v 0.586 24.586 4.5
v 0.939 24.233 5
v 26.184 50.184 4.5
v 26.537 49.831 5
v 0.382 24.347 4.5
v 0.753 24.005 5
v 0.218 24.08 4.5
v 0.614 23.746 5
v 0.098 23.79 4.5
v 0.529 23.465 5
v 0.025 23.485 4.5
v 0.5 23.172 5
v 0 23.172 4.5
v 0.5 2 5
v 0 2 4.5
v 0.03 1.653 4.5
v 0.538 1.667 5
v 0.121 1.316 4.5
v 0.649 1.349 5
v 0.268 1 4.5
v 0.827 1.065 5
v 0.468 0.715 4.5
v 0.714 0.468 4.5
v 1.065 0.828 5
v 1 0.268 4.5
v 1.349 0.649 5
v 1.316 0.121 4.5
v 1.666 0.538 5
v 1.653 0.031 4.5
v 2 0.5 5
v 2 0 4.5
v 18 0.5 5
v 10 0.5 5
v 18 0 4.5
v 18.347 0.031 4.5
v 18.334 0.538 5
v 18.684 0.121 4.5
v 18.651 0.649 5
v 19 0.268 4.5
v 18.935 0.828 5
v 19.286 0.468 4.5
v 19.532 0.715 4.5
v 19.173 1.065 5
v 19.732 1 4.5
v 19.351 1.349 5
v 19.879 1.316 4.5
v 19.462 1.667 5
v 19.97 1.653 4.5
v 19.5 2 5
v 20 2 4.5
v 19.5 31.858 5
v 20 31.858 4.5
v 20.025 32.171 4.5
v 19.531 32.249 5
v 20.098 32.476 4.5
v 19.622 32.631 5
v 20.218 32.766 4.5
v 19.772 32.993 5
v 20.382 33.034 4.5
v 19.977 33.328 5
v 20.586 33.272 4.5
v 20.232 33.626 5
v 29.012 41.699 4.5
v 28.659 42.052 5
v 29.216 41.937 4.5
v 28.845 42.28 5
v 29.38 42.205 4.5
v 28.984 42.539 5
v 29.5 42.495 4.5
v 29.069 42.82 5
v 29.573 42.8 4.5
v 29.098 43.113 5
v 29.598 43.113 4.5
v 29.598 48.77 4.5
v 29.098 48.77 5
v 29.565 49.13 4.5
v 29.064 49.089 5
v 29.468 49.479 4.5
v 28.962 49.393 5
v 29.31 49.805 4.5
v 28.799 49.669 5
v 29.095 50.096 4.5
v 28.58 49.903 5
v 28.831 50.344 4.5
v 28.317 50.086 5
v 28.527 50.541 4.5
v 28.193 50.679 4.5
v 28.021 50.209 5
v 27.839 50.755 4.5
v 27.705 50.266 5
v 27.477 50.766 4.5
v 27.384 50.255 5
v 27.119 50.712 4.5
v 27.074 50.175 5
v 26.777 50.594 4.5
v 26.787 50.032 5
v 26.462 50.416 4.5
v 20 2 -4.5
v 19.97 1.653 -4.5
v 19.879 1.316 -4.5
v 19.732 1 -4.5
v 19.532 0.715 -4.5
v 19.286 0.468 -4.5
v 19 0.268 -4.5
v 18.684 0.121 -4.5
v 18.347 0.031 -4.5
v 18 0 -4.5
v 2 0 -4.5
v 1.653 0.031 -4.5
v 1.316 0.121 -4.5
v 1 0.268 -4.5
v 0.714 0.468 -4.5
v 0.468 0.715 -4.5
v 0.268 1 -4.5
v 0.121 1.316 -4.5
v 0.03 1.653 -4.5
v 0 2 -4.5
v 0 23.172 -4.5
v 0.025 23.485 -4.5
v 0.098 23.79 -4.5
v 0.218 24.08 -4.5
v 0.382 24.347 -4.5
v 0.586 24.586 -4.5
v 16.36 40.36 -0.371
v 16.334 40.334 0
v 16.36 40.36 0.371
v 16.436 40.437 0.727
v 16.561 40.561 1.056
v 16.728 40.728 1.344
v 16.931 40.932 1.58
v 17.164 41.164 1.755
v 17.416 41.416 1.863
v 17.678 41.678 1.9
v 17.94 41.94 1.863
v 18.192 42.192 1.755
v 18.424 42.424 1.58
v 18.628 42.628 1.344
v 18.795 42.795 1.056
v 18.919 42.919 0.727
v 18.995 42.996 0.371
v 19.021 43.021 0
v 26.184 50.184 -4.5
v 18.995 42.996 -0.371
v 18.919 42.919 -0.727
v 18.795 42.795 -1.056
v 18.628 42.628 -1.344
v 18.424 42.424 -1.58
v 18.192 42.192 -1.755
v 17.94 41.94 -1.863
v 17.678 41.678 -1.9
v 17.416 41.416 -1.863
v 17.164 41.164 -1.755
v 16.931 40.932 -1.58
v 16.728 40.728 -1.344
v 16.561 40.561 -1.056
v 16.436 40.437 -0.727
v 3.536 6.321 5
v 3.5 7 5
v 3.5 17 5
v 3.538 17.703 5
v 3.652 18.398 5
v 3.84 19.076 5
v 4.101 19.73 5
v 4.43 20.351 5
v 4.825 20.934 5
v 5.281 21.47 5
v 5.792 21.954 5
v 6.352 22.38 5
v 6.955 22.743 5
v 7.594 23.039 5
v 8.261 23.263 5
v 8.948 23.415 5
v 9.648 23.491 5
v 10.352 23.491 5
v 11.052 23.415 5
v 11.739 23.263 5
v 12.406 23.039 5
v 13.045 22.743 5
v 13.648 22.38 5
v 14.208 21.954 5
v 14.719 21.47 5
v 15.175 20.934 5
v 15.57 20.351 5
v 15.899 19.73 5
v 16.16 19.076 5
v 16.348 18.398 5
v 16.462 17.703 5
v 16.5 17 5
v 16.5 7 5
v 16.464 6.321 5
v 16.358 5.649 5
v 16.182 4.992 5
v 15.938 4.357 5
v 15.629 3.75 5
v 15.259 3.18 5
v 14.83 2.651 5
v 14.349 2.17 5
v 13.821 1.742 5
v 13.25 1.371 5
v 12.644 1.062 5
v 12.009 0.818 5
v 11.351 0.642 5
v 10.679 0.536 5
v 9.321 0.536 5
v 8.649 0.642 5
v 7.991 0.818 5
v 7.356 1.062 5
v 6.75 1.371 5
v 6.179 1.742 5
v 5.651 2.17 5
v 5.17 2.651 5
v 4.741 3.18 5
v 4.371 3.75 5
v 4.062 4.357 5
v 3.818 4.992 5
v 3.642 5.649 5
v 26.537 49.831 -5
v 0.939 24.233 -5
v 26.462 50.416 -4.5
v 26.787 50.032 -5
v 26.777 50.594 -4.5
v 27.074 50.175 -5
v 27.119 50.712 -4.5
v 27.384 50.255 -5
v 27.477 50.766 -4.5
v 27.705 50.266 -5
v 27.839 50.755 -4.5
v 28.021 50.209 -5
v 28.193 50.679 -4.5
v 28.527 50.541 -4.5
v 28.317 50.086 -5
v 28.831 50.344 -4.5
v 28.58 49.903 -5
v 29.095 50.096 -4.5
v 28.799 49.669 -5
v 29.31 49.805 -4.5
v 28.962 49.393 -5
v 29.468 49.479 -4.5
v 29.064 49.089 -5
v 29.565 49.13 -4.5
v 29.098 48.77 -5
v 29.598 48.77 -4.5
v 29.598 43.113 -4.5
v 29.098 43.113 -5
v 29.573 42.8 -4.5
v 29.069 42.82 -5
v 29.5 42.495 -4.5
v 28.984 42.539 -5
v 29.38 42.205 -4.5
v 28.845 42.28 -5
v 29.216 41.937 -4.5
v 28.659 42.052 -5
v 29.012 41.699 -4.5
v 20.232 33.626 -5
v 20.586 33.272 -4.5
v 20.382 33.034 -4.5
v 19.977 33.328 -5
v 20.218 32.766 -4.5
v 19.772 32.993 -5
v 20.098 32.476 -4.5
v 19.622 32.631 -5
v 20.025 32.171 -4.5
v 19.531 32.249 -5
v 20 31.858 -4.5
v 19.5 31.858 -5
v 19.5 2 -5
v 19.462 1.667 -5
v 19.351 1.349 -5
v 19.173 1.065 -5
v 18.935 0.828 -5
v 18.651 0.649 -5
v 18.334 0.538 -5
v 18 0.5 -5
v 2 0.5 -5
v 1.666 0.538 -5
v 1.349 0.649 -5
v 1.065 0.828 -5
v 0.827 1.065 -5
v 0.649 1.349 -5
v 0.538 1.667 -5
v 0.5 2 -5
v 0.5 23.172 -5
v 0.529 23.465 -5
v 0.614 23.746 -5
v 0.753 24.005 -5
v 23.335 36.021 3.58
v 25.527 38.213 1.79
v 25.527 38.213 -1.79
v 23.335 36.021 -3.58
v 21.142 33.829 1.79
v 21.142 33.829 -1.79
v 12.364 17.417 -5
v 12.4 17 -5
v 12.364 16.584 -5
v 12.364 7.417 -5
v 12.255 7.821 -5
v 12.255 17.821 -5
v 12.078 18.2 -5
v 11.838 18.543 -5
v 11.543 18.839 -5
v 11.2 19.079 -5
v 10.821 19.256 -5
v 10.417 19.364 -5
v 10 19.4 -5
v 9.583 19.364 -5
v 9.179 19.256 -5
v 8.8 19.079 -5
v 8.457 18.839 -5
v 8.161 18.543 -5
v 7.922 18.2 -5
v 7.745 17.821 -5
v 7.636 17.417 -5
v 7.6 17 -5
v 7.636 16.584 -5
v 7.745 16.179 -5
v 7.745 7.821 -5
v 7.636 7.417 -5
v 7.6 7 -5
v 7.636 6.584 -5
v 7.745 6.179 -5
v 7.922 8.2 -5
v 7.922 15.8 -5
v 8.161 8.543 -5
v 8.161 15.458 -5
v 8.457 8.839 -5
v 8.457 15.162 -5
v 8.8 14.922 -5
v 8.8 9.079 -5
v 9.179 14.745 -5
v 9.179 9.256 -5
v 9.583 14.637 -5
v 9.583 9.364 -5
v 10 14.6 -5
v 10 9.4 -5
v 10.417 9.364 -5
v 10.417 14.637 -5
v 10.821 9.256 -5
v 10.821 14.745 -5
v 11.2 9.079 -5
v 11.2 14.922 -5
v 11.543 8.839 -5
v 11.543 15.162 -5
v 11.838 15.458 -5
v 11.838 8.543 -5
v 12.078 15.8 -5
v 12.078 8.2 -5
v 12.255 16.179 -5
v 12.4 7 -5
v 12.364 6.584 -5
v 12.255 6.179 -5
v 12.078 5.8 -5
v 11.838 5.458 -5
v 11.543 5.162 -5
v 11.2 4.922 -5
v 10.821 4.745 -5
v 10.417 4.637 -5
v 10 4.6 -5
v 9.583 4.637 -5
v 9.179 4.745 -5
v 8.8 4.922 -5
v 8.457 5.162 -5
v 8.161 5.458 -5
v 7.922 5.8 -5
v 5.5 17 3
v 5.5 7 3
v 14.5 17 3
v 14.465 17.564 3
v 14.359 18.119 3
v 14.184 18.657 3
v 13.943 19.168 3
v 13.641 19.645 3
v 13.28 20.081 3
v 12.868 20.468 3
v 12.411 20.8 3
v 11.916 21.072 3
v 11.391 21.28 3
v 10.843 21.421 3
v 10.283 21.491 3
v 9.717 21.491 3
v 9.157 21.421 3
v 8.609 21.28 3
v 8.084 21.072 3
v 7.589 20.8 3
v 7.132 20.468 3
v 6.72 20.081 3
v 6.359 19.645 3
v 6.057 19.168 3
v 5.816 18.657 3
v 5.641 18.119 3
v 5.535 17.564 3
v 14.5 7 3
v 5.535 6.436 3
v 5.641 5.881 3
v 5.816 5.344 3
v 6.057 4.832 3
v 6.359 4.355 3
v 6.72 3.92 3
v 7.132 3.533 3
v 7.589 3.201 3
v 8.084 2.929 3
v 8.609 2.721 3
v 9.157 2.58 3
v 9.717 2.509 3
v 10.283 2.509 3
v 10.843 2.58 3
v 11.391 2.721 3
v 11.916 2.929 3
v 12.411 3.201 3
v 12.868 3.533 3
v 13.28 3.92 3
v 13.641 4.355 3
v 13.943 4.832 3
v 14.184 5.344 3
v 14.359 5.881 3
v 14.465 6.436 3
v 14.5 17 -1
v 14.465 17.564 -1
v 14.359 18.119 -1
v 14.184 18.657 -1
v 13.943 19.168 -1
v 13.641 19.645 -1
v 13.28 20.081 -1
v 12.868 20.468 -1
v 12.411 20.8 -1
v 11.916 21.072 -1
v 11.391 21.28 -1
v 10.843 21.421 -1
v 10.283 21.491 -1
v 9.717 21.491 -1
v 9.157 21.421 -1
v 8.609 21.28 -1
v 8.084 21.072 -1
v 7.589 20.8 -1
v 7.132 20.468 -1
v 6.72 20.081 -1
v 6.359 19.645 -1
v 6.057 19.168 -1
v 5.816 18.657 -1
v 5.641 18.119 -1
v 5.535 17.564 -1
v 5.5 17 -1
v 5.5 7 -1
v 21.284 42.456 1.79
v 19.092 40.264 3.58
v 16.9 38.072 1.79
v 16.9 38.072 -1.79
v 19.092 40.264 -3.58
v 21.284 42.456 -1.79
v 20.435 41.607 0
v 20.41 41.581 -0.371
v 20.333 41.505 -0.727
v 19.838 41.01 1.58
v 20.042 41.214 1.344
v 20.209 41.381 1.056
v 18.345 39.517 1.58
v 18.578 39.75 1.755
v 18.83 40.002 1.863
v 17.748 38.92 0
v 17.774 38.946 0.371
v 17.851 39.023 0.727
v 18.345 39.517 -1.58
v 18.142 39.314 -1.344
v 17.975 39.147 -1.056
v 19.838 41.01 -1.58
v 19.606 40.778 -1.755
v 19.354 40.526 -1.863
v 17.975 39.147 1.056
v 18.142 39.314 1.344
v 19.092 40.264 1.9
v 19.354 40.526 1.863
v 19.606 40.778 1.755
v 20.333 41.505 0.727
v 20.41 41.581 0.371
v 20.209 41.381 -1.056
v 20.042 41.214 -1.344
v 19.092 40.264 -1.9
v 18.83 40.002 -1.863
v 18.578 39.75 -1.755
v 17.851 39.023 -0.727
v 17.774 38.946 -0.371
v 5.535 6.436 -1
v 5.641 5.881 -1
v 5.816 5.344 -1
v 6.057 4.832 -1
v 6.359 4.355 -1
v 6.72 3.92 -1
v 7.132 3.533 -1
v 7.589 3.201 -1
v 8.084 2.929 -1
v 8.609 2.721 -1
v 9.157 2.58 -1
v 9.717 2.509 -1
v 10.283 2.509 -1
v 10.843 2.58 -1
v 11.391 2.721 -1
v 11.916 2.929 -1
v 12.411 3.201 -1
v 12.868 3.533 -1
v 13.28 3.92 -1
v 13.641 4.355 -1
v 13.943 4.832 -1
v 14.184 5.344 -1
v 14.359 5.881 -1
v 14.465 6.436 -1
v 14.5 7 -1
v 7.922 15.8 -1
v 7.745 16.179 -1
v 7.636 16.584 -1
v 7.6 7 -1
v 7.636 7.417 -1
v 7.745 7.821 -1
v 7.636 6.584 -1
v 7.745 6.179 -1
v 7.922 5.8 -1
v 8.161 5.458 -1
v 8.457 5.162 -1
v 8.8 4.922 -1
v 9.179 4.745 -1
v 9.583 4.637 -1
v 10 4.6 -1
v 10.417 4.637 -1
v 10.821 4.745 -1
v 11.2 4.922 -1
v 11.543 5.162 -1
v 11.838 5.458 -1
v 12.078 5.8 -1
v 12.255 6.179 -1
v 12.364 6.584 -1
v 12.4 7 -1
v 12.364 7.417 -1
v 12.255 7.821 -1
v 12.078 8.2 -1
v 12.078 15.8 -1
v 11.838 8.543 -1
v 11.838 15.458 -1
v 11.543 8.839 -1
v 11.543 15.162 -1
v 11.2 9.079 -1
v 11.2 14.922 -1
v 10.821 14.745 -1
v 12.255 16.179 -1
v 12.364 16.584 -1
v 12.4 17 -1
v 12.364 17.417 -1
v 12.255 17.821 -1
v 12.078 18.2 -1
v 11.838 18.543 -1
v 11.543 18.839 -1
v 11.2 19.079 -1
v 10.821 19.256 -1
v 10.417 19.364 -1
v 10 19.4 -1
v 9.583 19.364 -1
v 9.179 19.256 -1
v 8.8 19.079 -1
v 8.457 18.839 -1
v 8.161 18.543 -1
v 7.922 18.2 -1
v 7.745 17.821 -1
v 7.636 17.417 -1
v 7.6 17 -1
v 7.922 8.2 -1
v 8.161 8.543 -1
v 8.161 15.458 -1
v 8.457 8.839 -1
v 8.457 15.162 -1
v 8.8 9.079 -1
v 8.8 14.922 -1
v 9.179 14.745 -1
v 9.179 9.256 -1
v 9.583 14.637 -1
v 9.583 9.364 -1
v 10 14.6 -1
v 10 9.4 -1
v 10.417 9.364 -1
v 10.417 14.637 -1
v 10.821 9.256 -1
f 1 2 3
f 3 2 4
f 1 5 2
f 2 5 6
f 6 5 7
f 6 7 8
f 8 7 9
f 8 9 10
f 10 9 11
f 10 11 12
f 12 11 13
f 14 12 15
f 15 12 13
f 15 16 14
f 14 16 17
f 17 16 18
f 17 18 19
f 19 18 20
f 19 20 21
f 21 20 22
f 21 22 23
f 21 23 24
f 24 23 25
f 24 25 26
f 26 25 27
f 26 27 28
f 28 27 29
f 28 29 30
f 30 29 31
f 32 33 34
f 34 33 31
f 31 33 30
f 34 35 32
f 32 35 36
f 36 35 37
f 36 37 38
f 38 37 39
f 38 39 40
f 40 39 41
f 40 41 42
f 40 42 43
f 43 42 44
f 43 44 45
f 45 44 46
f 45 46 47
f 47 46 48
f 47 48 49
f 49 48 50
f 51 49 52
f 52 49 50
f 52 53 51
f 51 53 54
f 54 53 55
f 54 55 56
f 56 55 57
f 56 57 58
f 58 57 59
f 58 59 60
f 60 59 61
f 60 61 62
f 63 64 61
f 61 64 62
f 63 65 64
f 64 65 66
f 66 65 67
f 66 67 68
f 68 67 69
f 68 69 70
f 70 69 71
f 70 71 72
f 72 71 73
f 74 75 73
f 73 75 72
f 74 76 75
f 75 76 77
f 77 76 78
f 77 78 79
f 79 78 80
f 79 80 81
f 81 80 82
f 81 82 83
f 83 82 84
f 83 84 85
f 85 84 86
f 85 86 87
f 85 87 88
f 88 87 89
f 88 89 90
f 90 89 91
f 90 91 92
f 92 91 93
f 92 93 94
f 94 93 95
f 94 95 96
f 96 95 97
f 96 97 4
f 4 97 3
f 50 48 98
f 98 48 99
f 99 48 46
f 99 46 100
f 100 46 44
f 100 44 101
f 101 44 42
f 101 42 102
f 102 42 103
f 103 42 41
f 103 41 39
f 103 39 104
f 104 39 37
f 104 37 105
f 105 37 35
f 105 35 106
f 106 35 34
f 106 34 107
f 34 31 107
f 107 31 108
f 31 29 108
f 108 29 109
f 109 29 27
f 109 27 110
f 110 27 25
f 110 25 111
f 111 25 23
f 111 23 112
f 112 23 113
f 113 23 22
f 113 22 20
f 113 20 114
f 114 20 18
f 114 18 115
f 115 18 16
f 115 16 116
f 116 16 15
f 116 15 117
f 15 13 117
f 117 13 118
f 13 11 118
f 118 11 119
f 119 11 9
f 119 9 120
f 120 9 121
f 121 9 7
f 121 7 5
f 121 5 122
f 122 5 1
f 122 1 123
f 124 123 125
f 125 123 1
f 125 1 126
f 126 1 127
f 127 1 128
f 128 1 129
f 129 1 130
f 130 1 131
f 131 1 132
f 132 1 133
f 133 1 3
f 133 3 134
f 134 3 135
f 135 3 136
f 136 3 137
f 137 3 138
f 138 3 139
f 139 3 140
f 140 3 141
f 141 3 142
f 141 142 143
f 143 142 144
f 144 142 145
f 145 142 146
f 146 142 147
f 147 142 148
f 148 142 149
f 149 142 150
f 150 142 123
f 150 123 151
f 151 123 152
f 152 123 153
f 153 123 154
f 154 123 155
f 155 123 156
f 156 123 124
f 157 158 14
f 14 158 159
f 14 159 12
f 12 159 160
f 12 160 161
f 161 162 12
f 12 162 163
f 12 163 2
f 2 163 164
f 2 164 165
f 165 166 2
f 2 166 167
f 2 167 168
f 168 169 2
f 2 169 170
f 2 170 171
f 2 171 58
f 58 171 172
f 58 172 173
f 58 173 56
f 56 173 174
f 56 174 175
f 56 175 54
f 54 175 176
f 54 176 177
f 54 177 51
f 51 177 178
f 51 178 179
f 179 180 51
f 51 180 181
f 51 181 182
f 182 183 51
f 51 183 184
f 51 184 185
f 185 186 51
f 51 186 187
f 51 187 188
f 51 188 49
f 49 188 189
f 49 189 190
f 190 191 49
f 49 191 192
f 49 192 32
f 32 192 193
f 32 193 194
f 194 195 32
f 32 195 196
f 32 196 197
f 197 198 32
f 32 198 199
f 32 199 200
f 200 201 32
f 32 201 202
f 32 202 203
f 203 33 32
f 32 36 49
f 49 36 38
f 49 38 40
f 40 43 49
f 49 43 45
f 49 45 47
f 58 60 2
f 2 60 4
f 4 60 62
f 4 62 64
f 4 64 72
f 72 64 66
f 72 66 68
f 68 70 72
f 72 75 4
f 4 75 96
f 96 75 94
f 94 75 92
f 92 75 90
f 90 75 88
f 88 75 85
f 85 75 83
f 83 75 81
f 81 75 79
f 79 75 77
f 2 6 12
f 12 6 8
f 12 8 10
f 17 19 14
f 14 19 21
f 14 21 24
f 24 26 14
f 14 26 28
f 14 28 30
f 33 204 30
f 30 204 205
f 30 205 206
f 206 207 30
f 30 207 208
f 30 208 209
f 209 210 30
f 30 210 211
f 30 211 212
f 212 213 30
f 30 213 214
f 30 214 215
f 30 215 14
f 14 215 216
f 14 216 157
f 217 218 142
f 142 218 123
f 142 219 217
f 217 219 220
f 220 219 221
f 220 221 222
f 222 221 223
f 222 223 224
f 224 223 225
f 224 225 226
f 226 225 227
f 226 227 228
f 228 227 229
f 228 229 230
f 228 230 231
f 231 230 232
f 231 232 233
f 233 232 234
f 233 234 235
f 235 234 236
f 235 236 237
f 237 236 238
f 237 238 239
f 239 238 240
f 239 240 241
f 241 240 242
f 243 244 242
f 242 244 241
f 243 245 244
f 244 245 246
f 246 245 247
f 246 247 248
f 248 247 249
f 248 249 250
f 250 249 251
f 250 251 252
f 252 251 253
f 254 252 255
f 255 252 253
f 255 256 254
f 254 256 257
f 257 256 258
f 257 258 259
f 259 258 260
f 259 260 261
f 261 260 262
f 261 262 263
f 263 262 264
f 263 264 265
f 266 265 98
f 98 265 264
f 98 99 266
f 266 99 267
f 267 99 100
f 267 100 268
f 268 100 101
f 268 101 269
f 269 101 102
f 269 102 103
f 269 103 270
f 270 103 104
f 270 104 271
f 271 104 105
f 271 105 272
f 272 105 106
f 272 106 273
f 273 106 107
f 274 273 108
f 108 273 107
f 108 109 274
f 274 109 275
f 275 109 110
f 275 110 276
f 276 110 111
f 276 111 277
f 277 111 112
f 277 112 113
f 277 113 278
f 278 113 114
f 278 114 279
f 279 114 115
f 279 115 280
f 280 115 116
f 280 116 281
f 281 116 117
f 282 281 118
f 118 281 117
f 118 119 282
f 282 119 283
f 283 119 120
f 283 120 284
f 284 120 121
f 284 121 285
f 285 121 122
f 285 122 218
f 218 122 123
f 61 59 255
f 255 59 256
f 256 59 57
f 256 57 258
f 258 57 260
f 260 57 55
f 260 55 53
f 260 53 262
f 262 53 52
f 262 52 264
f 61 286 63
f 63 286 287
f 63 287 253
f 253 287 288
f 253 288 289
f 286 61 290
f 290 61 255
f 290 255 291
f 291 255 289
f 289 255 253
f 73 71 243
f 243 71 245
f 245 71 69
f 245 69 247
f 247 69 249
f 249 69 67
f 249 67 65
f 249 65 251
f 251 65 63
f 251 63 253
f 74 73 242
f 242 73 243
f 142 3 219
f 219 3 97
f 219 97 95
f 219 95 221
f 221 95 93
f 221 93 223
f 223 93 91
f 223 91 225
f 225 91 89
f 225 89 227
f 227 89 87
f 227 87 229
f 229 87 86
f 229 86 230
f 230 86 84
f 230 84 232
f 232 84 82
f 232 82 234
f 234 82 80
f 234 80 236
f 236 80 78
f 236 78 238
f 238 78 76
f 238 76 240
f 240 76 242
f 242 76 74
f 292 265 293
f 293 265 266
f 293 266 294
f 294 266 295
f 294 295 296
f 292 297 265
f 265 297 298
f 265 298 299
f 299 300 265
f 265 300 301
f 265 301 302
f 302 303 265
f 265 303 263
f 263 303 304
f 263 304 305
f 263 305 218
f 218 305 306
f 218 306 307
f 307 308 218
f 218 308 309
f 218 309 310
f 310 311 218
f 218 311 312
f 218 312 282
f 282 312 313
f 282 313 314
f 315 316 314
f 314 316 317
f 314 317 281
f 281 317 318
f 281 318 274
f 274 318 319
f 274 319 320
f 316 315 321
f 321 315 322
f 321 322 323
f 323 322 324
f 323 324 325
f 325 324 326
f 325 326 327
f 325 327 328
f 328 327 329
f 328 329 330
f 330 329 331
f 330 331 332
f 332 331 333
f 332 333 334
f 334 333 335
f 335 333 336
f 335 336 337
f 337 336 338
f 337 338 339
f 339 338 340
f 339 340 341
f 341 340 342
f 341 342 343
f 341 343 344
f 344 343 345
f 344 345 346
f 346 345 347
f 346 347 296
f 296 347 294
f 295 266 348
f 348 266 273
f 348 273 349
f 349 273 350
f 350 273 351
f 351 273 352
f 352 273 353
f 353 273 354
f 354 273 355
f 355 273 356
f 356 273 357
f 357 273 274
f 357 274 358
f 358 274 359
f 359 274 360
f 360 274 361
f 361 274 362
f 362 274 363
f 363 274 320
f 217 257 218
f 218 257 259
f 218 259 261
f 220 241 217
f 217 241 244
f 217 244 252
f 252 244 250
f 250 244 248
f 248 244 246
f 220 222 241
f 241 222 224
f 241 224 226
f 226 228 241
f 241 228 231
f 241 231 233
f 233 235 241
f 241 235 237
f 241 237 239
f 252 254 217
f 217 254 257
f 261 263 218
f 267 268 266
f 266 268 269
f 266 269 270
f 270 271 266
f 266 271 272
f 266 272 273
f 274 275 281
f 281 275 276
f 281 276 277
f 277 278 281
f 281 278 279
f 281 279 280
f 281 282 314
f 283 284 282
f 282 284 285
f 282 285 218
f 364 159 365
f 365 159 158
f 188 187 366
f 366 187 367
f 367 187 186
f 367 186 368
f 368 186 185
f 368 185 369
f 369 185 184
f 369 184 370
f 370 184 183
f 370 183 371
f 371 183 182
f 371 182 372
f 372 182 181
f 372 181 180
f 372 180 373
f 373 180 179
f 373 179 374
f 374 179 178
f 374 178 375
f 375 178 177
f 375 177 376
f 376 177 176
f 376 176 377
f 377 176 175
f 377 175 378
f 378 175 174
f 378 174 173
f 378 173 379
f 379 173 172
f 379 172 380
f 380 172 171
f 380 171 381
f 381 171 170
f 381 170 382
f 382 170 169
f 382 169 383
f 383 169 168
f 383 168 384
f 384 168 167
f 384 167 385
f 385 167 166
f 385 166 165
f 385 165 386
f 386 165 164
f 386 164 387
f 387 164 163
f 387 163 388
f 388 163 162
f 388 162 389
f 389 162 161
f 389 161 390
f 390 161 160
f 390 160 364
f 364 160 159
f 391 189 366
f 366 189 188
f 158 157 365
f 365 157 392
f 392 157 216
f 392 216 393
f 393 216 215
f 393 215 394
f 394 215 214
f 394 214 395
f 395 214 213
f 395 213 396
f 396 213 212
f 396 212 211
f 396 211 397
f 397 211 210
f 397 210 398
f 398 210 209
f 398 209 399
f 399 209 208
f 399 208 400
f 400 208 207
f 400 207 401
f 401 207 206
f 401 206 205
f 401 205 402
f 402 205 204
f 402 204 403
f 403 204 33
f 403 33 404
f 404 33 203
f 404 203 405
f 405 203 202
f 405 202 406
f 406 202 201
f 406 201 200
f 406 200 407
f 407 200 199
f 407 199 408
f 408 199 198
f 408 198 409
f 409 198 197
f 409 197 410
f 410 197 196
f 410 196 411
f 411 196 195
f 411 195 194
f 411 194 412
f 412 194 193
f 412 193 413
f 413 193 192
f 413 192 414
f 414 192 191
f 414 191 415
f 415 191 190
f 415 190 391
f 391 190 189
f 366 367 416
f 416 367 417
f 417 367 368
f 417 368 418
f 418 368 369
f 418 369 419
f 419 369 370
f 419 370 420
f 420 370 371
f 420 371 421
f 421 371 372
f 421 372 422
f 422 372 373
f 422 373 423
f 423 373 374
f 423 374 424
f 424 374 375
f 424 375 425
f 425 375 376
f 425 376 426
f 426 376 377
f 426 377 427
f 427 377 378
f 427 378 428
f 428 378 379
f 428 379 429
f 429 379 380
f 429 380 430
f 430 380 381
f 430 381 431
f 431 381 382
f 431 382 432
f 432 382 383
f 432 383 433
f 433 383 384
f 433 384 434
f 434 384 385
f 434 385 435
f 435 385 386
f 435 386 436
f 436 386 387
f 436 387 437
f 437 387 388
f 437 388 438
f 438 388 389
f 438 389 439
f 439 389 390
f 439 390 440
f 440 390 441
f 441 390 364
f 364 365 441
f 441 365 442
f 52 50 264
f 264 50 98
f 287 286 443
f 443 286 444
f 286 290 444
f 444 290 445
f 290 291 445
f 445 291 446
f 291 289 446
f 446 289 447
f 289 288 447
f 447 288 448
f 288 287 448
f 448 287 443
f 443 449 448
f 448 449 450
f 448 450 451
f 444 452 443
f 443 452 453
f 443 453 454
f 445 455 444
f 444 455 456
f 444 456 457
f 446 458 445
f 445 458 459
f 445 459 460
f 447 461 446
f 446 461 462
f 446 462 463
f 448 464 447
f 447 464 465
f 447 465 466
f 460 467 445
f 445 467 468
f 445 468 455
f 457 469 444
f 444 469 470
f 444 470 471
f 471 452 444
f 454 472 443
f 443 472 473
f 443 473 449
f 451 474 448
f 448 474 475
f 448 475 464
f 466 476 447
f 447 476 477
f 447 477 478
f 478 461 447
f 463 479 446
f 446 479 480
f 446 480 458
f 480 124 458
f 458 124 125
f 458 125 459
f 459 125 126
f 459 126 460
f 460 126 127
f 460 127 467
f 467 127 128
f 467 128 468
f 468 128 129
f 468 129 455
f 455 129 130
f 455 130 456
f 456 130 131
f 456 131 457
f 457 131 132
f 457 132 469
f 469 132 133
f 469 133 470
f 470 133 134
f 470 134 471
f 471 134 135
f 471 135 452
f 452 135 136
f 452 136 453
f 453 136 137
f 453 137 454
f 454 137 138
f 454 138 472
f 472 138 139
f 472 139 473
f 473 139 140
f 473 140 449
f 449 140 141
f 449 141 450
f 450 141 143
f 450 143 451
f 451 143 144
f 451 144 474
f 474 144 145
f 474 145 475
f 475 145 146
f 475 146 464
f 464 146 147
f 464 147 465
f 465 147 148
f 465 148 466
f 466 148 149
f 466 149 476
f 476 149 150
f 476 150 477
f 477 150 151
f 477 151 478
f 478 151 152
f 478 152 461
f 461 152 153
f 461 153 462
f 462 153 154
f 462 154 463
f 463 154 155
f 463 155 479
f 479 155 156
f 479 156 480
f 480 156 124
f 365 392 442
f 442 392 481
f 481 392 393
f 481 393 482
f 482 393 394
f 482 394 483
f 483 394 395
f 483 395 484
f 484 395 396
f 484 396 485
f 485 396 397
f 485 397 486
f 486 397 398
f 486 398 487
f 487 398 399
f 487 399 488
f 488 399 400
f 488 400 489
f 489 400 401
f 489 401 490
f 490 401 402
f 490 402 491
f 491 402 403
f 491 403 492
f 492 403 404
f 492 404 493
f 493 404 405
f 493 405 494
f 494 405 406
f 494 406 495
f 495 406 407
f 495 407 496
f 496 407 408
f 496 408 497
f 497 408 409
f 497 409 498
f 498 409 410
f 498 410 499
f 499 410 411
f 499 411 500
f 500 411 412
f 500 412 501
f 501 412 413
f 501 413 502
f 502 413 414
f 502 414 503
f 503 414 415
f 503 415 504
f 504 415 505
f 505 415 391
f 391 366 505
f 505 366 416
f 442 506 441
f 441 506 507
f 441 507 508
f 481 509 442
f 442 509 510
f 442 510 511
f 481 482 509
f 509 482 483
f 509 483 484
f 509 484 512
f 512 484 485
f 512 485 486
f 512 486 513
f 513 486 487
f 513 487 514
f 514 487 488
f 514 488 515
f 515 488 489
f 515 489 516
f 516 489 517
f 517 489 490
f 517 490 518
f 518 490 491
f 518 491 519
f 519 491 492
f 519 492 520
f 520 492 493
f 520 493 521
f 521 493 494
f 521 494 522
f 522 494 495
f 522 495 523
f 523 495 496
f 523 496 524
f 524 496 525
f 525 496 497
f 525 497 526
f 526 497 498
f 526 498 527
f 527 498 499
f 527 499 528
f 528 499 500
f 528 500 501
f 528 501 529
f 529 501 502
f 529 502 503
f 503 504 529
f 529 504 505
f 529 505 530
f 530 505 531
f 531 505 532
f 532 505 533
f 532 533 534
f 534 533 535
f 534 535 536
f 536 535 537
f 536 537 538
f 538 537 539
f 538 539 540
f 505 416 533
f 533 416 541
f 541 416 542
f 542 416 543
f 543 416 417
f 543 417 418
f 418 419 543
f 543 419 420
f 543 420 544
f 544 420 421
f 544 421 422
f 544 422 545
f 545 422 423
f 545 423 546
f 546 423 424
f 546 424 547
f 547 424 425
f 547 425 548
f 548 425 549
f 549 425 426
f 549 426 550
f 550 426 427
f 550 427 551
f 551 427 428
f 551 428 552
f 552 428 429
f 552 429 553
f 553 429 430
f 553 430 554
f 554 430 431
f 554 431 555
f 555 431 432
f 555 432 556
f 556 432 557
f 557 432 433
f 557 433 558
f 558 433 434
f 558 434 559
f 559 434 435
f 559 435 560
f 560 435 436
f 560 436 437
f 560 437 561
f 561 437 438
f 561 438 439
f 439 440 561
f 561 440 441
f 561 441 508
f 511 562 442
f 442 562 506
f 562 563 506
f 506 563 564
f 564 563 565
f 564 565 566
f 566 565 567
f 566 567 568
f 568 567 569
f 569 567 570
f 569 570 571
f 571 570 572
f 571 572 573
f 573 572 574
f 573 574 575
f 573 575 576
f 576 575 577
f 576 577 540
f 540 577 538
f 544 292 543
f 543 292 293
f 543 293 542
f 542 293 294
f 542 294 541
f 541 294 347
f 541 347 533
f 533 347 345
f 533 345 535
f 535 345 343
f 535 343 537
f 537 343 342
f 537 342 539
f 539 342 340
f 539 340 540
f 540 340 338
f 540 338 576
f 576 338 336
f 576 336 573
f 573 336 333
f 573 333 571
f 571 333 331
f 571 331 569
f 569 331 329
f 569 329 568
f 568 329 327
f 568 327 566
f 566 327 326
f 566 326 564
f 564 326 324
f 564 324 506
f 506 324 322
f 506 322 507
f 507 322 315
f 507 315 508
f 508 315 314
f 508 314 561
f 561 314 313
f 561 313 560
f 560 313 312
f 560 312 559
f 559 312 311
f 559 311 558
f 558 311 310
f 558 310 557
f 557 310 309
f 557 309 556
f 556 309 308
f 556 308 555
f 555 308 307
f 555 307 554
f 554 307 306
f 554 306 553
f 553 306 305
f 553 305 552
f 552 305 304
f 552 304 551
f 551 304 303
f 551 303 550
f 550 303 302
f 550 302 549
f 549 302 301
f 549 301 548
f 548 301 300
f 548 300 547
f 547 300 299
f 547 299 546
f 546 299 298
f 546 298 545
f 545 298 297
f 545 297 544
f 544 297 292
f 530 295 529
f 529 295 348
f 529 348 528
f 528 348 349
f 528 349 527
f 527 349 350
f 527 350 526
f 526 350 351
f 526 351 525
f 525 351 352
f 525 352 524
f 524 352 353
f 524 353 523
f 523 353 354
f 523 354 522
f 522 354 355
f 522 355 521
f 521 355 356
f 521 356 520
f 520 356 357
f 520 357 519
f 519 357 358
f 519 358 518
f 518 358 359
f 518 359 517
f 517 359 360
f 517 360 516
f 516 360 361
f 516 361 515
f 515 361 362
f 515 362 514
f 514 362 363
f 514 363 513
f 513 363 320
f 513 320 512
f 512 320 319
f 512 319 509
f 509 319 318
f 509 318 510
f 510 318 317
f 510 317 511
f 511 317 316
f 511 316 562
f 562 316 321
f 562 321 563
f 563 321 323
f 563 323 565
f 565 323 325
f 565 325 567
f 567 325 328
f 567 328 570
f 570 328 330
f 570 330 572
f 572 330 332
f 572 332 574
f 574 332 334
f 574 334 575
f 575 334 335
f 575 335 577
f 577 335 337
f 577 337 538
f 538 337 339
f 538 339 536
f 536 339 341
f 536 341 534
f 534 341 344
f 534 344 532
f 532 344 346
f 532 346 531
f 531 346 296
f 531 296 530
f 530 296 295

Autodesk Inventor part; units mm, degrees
ref_plane "YZ Plane" through (0, 0, 0) normal (1, 0, 0) x (0, 1, 0)
ref_plane "XZ Plane" through (0, 0, 0) normal (0, 1, 0) x (-1, 0, 0)
ref_plane "XY Plane" through (0, 0, 0) normal (0, 0, 1) x (1, 0, 0)
sketch "Sketch1" plane through (0, 0, 0) normal (0, 0, 1) x (1, 0, 0)
  line L0 (0, 0) -> (20, 0)
  line L1 (20, 0) -> (20, 24)
  line L2 (20, 24) -> (0, 24)
  line L3 (0, 24) -> (0, 0)
  line L4 (0, 24) -> (28.2843, 52.2843)
  line L5 (29.598, 42.2843) -> (29.598, 52.2843)
  line L6 (20, 24) -> (20, 32.6863)
  line L7 (20, 32.6863) -> (29.598, 42.2843)
  line L8 (10, 0) -> (10, 46.8926) construction
  circle A0 centre (10, 17) radius 2.4
  circle A1 centre (10, 7) radius 2.4
  line L9 (28.2843, 52.2843) -> (29.598, 52.2843)
  dimension "d0" = 24
  dimension "d1" = 20
  dimension "d3" = 8
  dimension "d4" = 45
  dimension "d6" = 4.8
  dimension "d7" = 4.8
  dimension "d8" = 7
  dimension "d9" = 7
  dimension "d10" = 10
  dimension "d12" = 40
extrude "Extrusion1" add sketch "Sketch1" along normal mid plane 10
sketch "Sketch2" plane through (0, 0, 5) normal (0, 0, 1) x (1, 0, 0)
  circle A0 centre (10, 17) radius 2.4 projected
  circle A1 centre (10, 7) radius 2.4 projected
  arc A2 (14.5, 17) -> (5.5, 17) centre (10, 17) ccw
  arc A3 (5.5, 7) -> (14.5, 7) centre (10, 7) ccw
  line L0 (5.5, 17) -> (5.5, 7)
  line L1 (14.5, 17) -> (14.5, 7)
  point P0 (0, 0)
  dimension "d15" = 9
  dimension "d16" = 9
extrude "Extrusion2" cut sketch "Sketch2" against normal blind 6
sketch "Sketch4" plane through (0, 24, -5) normal (-0.7071, 0.7071, 0) x (-0.7071, -0.7071, 0)
  line L0 (38.7328, 5) -> (-54.2059, 5) projected
  circle A0 centre (-25, 5) radius 1.9
  line L1 (0, 0) -> (0, 10) projected
  point P0 (16.9706, 5)
  dimension "d19" = 3.8
  dimension "d20" = 25
extrude "Extrusion3" cut sketch "Sketch4" against normal through all
sketch "Sketch5" plane through (29.598, 42.2843, 5) normal (0.7071, -0.7071, 0) x (-0.7071, -0.7071, 0)
  circle A0 centre (8.8579, 5) radius 1.9 projected
  line L0 (8.8579, 8.5796) -> (11.9579, 6.7898)
  line L1 (11.9579, 6.7898) -> (11.9579, 3.2102)
  line L2 (11.9579, 3.2102) -> (8.8579, 1.4204)
  line L3 (8.8579, 1.4204) -> (5.7579, 3.2102)
  line L4 (5.7579, 3.2102) -> (5.7579, 6.7898)
  line L5 (5.7579, 6.7898) -> (8.8579, 8.5796)
  point P0 (50.8284, 5)
  dimension "d23" = 6.2
extrude "Extrusion4" cut sketch "Sketch5" against normal blind 6
fillet "Fillet1" radius 2 7 edges at (0, 0, 0) (20, 0, 0) (0, 24, 0) (20, 32.6863, 0) (29.598, 42.2843, 0) (29.598, 52.2843, 0) (28.2843, 52.2843, 0)
chamfer "Chamfer1" distance 2 angle 45 4 edges at (5.5, 12, 5) (10, 21.5, 5) (14.5, 12, 5) (10, 2.5, 5)
chamfer "Chamfer2" distance 0.5 angle 45 22 edges at (13.3856, 37.3856, -5) (29.598, 45.9423, -5) (29.4457, 42.3473, -5) (24.799, 37.4853, -5) (20.1522, 32.6232, -5) (20, 16.9289, -5) (19.4142, 0.5858, -5) (10, 0, -5) (0.5858, 0.5858, -5) (0, 12.5858, -5) (0.1522, 23.9369, -5) (13.3856, 37.3856, 5) (0.1522, 23.9369, 5) (0, 12.5858, 5) (0.5858, 0.5858, 5) (10, 0, 5) (19.4142, 0.5858, 5) (20, 16.9289, 5) (20.1522, 32.6232, 5) (24.799, 37.4853, 5) (29.4457, 42.3473, 5) (29.598, 45.9423, 5)
equation "\"d7\" = d6"
equation "\"d9\" = d8"
equation "\"d16\" = d15"
properties part number "_3DPrint"
